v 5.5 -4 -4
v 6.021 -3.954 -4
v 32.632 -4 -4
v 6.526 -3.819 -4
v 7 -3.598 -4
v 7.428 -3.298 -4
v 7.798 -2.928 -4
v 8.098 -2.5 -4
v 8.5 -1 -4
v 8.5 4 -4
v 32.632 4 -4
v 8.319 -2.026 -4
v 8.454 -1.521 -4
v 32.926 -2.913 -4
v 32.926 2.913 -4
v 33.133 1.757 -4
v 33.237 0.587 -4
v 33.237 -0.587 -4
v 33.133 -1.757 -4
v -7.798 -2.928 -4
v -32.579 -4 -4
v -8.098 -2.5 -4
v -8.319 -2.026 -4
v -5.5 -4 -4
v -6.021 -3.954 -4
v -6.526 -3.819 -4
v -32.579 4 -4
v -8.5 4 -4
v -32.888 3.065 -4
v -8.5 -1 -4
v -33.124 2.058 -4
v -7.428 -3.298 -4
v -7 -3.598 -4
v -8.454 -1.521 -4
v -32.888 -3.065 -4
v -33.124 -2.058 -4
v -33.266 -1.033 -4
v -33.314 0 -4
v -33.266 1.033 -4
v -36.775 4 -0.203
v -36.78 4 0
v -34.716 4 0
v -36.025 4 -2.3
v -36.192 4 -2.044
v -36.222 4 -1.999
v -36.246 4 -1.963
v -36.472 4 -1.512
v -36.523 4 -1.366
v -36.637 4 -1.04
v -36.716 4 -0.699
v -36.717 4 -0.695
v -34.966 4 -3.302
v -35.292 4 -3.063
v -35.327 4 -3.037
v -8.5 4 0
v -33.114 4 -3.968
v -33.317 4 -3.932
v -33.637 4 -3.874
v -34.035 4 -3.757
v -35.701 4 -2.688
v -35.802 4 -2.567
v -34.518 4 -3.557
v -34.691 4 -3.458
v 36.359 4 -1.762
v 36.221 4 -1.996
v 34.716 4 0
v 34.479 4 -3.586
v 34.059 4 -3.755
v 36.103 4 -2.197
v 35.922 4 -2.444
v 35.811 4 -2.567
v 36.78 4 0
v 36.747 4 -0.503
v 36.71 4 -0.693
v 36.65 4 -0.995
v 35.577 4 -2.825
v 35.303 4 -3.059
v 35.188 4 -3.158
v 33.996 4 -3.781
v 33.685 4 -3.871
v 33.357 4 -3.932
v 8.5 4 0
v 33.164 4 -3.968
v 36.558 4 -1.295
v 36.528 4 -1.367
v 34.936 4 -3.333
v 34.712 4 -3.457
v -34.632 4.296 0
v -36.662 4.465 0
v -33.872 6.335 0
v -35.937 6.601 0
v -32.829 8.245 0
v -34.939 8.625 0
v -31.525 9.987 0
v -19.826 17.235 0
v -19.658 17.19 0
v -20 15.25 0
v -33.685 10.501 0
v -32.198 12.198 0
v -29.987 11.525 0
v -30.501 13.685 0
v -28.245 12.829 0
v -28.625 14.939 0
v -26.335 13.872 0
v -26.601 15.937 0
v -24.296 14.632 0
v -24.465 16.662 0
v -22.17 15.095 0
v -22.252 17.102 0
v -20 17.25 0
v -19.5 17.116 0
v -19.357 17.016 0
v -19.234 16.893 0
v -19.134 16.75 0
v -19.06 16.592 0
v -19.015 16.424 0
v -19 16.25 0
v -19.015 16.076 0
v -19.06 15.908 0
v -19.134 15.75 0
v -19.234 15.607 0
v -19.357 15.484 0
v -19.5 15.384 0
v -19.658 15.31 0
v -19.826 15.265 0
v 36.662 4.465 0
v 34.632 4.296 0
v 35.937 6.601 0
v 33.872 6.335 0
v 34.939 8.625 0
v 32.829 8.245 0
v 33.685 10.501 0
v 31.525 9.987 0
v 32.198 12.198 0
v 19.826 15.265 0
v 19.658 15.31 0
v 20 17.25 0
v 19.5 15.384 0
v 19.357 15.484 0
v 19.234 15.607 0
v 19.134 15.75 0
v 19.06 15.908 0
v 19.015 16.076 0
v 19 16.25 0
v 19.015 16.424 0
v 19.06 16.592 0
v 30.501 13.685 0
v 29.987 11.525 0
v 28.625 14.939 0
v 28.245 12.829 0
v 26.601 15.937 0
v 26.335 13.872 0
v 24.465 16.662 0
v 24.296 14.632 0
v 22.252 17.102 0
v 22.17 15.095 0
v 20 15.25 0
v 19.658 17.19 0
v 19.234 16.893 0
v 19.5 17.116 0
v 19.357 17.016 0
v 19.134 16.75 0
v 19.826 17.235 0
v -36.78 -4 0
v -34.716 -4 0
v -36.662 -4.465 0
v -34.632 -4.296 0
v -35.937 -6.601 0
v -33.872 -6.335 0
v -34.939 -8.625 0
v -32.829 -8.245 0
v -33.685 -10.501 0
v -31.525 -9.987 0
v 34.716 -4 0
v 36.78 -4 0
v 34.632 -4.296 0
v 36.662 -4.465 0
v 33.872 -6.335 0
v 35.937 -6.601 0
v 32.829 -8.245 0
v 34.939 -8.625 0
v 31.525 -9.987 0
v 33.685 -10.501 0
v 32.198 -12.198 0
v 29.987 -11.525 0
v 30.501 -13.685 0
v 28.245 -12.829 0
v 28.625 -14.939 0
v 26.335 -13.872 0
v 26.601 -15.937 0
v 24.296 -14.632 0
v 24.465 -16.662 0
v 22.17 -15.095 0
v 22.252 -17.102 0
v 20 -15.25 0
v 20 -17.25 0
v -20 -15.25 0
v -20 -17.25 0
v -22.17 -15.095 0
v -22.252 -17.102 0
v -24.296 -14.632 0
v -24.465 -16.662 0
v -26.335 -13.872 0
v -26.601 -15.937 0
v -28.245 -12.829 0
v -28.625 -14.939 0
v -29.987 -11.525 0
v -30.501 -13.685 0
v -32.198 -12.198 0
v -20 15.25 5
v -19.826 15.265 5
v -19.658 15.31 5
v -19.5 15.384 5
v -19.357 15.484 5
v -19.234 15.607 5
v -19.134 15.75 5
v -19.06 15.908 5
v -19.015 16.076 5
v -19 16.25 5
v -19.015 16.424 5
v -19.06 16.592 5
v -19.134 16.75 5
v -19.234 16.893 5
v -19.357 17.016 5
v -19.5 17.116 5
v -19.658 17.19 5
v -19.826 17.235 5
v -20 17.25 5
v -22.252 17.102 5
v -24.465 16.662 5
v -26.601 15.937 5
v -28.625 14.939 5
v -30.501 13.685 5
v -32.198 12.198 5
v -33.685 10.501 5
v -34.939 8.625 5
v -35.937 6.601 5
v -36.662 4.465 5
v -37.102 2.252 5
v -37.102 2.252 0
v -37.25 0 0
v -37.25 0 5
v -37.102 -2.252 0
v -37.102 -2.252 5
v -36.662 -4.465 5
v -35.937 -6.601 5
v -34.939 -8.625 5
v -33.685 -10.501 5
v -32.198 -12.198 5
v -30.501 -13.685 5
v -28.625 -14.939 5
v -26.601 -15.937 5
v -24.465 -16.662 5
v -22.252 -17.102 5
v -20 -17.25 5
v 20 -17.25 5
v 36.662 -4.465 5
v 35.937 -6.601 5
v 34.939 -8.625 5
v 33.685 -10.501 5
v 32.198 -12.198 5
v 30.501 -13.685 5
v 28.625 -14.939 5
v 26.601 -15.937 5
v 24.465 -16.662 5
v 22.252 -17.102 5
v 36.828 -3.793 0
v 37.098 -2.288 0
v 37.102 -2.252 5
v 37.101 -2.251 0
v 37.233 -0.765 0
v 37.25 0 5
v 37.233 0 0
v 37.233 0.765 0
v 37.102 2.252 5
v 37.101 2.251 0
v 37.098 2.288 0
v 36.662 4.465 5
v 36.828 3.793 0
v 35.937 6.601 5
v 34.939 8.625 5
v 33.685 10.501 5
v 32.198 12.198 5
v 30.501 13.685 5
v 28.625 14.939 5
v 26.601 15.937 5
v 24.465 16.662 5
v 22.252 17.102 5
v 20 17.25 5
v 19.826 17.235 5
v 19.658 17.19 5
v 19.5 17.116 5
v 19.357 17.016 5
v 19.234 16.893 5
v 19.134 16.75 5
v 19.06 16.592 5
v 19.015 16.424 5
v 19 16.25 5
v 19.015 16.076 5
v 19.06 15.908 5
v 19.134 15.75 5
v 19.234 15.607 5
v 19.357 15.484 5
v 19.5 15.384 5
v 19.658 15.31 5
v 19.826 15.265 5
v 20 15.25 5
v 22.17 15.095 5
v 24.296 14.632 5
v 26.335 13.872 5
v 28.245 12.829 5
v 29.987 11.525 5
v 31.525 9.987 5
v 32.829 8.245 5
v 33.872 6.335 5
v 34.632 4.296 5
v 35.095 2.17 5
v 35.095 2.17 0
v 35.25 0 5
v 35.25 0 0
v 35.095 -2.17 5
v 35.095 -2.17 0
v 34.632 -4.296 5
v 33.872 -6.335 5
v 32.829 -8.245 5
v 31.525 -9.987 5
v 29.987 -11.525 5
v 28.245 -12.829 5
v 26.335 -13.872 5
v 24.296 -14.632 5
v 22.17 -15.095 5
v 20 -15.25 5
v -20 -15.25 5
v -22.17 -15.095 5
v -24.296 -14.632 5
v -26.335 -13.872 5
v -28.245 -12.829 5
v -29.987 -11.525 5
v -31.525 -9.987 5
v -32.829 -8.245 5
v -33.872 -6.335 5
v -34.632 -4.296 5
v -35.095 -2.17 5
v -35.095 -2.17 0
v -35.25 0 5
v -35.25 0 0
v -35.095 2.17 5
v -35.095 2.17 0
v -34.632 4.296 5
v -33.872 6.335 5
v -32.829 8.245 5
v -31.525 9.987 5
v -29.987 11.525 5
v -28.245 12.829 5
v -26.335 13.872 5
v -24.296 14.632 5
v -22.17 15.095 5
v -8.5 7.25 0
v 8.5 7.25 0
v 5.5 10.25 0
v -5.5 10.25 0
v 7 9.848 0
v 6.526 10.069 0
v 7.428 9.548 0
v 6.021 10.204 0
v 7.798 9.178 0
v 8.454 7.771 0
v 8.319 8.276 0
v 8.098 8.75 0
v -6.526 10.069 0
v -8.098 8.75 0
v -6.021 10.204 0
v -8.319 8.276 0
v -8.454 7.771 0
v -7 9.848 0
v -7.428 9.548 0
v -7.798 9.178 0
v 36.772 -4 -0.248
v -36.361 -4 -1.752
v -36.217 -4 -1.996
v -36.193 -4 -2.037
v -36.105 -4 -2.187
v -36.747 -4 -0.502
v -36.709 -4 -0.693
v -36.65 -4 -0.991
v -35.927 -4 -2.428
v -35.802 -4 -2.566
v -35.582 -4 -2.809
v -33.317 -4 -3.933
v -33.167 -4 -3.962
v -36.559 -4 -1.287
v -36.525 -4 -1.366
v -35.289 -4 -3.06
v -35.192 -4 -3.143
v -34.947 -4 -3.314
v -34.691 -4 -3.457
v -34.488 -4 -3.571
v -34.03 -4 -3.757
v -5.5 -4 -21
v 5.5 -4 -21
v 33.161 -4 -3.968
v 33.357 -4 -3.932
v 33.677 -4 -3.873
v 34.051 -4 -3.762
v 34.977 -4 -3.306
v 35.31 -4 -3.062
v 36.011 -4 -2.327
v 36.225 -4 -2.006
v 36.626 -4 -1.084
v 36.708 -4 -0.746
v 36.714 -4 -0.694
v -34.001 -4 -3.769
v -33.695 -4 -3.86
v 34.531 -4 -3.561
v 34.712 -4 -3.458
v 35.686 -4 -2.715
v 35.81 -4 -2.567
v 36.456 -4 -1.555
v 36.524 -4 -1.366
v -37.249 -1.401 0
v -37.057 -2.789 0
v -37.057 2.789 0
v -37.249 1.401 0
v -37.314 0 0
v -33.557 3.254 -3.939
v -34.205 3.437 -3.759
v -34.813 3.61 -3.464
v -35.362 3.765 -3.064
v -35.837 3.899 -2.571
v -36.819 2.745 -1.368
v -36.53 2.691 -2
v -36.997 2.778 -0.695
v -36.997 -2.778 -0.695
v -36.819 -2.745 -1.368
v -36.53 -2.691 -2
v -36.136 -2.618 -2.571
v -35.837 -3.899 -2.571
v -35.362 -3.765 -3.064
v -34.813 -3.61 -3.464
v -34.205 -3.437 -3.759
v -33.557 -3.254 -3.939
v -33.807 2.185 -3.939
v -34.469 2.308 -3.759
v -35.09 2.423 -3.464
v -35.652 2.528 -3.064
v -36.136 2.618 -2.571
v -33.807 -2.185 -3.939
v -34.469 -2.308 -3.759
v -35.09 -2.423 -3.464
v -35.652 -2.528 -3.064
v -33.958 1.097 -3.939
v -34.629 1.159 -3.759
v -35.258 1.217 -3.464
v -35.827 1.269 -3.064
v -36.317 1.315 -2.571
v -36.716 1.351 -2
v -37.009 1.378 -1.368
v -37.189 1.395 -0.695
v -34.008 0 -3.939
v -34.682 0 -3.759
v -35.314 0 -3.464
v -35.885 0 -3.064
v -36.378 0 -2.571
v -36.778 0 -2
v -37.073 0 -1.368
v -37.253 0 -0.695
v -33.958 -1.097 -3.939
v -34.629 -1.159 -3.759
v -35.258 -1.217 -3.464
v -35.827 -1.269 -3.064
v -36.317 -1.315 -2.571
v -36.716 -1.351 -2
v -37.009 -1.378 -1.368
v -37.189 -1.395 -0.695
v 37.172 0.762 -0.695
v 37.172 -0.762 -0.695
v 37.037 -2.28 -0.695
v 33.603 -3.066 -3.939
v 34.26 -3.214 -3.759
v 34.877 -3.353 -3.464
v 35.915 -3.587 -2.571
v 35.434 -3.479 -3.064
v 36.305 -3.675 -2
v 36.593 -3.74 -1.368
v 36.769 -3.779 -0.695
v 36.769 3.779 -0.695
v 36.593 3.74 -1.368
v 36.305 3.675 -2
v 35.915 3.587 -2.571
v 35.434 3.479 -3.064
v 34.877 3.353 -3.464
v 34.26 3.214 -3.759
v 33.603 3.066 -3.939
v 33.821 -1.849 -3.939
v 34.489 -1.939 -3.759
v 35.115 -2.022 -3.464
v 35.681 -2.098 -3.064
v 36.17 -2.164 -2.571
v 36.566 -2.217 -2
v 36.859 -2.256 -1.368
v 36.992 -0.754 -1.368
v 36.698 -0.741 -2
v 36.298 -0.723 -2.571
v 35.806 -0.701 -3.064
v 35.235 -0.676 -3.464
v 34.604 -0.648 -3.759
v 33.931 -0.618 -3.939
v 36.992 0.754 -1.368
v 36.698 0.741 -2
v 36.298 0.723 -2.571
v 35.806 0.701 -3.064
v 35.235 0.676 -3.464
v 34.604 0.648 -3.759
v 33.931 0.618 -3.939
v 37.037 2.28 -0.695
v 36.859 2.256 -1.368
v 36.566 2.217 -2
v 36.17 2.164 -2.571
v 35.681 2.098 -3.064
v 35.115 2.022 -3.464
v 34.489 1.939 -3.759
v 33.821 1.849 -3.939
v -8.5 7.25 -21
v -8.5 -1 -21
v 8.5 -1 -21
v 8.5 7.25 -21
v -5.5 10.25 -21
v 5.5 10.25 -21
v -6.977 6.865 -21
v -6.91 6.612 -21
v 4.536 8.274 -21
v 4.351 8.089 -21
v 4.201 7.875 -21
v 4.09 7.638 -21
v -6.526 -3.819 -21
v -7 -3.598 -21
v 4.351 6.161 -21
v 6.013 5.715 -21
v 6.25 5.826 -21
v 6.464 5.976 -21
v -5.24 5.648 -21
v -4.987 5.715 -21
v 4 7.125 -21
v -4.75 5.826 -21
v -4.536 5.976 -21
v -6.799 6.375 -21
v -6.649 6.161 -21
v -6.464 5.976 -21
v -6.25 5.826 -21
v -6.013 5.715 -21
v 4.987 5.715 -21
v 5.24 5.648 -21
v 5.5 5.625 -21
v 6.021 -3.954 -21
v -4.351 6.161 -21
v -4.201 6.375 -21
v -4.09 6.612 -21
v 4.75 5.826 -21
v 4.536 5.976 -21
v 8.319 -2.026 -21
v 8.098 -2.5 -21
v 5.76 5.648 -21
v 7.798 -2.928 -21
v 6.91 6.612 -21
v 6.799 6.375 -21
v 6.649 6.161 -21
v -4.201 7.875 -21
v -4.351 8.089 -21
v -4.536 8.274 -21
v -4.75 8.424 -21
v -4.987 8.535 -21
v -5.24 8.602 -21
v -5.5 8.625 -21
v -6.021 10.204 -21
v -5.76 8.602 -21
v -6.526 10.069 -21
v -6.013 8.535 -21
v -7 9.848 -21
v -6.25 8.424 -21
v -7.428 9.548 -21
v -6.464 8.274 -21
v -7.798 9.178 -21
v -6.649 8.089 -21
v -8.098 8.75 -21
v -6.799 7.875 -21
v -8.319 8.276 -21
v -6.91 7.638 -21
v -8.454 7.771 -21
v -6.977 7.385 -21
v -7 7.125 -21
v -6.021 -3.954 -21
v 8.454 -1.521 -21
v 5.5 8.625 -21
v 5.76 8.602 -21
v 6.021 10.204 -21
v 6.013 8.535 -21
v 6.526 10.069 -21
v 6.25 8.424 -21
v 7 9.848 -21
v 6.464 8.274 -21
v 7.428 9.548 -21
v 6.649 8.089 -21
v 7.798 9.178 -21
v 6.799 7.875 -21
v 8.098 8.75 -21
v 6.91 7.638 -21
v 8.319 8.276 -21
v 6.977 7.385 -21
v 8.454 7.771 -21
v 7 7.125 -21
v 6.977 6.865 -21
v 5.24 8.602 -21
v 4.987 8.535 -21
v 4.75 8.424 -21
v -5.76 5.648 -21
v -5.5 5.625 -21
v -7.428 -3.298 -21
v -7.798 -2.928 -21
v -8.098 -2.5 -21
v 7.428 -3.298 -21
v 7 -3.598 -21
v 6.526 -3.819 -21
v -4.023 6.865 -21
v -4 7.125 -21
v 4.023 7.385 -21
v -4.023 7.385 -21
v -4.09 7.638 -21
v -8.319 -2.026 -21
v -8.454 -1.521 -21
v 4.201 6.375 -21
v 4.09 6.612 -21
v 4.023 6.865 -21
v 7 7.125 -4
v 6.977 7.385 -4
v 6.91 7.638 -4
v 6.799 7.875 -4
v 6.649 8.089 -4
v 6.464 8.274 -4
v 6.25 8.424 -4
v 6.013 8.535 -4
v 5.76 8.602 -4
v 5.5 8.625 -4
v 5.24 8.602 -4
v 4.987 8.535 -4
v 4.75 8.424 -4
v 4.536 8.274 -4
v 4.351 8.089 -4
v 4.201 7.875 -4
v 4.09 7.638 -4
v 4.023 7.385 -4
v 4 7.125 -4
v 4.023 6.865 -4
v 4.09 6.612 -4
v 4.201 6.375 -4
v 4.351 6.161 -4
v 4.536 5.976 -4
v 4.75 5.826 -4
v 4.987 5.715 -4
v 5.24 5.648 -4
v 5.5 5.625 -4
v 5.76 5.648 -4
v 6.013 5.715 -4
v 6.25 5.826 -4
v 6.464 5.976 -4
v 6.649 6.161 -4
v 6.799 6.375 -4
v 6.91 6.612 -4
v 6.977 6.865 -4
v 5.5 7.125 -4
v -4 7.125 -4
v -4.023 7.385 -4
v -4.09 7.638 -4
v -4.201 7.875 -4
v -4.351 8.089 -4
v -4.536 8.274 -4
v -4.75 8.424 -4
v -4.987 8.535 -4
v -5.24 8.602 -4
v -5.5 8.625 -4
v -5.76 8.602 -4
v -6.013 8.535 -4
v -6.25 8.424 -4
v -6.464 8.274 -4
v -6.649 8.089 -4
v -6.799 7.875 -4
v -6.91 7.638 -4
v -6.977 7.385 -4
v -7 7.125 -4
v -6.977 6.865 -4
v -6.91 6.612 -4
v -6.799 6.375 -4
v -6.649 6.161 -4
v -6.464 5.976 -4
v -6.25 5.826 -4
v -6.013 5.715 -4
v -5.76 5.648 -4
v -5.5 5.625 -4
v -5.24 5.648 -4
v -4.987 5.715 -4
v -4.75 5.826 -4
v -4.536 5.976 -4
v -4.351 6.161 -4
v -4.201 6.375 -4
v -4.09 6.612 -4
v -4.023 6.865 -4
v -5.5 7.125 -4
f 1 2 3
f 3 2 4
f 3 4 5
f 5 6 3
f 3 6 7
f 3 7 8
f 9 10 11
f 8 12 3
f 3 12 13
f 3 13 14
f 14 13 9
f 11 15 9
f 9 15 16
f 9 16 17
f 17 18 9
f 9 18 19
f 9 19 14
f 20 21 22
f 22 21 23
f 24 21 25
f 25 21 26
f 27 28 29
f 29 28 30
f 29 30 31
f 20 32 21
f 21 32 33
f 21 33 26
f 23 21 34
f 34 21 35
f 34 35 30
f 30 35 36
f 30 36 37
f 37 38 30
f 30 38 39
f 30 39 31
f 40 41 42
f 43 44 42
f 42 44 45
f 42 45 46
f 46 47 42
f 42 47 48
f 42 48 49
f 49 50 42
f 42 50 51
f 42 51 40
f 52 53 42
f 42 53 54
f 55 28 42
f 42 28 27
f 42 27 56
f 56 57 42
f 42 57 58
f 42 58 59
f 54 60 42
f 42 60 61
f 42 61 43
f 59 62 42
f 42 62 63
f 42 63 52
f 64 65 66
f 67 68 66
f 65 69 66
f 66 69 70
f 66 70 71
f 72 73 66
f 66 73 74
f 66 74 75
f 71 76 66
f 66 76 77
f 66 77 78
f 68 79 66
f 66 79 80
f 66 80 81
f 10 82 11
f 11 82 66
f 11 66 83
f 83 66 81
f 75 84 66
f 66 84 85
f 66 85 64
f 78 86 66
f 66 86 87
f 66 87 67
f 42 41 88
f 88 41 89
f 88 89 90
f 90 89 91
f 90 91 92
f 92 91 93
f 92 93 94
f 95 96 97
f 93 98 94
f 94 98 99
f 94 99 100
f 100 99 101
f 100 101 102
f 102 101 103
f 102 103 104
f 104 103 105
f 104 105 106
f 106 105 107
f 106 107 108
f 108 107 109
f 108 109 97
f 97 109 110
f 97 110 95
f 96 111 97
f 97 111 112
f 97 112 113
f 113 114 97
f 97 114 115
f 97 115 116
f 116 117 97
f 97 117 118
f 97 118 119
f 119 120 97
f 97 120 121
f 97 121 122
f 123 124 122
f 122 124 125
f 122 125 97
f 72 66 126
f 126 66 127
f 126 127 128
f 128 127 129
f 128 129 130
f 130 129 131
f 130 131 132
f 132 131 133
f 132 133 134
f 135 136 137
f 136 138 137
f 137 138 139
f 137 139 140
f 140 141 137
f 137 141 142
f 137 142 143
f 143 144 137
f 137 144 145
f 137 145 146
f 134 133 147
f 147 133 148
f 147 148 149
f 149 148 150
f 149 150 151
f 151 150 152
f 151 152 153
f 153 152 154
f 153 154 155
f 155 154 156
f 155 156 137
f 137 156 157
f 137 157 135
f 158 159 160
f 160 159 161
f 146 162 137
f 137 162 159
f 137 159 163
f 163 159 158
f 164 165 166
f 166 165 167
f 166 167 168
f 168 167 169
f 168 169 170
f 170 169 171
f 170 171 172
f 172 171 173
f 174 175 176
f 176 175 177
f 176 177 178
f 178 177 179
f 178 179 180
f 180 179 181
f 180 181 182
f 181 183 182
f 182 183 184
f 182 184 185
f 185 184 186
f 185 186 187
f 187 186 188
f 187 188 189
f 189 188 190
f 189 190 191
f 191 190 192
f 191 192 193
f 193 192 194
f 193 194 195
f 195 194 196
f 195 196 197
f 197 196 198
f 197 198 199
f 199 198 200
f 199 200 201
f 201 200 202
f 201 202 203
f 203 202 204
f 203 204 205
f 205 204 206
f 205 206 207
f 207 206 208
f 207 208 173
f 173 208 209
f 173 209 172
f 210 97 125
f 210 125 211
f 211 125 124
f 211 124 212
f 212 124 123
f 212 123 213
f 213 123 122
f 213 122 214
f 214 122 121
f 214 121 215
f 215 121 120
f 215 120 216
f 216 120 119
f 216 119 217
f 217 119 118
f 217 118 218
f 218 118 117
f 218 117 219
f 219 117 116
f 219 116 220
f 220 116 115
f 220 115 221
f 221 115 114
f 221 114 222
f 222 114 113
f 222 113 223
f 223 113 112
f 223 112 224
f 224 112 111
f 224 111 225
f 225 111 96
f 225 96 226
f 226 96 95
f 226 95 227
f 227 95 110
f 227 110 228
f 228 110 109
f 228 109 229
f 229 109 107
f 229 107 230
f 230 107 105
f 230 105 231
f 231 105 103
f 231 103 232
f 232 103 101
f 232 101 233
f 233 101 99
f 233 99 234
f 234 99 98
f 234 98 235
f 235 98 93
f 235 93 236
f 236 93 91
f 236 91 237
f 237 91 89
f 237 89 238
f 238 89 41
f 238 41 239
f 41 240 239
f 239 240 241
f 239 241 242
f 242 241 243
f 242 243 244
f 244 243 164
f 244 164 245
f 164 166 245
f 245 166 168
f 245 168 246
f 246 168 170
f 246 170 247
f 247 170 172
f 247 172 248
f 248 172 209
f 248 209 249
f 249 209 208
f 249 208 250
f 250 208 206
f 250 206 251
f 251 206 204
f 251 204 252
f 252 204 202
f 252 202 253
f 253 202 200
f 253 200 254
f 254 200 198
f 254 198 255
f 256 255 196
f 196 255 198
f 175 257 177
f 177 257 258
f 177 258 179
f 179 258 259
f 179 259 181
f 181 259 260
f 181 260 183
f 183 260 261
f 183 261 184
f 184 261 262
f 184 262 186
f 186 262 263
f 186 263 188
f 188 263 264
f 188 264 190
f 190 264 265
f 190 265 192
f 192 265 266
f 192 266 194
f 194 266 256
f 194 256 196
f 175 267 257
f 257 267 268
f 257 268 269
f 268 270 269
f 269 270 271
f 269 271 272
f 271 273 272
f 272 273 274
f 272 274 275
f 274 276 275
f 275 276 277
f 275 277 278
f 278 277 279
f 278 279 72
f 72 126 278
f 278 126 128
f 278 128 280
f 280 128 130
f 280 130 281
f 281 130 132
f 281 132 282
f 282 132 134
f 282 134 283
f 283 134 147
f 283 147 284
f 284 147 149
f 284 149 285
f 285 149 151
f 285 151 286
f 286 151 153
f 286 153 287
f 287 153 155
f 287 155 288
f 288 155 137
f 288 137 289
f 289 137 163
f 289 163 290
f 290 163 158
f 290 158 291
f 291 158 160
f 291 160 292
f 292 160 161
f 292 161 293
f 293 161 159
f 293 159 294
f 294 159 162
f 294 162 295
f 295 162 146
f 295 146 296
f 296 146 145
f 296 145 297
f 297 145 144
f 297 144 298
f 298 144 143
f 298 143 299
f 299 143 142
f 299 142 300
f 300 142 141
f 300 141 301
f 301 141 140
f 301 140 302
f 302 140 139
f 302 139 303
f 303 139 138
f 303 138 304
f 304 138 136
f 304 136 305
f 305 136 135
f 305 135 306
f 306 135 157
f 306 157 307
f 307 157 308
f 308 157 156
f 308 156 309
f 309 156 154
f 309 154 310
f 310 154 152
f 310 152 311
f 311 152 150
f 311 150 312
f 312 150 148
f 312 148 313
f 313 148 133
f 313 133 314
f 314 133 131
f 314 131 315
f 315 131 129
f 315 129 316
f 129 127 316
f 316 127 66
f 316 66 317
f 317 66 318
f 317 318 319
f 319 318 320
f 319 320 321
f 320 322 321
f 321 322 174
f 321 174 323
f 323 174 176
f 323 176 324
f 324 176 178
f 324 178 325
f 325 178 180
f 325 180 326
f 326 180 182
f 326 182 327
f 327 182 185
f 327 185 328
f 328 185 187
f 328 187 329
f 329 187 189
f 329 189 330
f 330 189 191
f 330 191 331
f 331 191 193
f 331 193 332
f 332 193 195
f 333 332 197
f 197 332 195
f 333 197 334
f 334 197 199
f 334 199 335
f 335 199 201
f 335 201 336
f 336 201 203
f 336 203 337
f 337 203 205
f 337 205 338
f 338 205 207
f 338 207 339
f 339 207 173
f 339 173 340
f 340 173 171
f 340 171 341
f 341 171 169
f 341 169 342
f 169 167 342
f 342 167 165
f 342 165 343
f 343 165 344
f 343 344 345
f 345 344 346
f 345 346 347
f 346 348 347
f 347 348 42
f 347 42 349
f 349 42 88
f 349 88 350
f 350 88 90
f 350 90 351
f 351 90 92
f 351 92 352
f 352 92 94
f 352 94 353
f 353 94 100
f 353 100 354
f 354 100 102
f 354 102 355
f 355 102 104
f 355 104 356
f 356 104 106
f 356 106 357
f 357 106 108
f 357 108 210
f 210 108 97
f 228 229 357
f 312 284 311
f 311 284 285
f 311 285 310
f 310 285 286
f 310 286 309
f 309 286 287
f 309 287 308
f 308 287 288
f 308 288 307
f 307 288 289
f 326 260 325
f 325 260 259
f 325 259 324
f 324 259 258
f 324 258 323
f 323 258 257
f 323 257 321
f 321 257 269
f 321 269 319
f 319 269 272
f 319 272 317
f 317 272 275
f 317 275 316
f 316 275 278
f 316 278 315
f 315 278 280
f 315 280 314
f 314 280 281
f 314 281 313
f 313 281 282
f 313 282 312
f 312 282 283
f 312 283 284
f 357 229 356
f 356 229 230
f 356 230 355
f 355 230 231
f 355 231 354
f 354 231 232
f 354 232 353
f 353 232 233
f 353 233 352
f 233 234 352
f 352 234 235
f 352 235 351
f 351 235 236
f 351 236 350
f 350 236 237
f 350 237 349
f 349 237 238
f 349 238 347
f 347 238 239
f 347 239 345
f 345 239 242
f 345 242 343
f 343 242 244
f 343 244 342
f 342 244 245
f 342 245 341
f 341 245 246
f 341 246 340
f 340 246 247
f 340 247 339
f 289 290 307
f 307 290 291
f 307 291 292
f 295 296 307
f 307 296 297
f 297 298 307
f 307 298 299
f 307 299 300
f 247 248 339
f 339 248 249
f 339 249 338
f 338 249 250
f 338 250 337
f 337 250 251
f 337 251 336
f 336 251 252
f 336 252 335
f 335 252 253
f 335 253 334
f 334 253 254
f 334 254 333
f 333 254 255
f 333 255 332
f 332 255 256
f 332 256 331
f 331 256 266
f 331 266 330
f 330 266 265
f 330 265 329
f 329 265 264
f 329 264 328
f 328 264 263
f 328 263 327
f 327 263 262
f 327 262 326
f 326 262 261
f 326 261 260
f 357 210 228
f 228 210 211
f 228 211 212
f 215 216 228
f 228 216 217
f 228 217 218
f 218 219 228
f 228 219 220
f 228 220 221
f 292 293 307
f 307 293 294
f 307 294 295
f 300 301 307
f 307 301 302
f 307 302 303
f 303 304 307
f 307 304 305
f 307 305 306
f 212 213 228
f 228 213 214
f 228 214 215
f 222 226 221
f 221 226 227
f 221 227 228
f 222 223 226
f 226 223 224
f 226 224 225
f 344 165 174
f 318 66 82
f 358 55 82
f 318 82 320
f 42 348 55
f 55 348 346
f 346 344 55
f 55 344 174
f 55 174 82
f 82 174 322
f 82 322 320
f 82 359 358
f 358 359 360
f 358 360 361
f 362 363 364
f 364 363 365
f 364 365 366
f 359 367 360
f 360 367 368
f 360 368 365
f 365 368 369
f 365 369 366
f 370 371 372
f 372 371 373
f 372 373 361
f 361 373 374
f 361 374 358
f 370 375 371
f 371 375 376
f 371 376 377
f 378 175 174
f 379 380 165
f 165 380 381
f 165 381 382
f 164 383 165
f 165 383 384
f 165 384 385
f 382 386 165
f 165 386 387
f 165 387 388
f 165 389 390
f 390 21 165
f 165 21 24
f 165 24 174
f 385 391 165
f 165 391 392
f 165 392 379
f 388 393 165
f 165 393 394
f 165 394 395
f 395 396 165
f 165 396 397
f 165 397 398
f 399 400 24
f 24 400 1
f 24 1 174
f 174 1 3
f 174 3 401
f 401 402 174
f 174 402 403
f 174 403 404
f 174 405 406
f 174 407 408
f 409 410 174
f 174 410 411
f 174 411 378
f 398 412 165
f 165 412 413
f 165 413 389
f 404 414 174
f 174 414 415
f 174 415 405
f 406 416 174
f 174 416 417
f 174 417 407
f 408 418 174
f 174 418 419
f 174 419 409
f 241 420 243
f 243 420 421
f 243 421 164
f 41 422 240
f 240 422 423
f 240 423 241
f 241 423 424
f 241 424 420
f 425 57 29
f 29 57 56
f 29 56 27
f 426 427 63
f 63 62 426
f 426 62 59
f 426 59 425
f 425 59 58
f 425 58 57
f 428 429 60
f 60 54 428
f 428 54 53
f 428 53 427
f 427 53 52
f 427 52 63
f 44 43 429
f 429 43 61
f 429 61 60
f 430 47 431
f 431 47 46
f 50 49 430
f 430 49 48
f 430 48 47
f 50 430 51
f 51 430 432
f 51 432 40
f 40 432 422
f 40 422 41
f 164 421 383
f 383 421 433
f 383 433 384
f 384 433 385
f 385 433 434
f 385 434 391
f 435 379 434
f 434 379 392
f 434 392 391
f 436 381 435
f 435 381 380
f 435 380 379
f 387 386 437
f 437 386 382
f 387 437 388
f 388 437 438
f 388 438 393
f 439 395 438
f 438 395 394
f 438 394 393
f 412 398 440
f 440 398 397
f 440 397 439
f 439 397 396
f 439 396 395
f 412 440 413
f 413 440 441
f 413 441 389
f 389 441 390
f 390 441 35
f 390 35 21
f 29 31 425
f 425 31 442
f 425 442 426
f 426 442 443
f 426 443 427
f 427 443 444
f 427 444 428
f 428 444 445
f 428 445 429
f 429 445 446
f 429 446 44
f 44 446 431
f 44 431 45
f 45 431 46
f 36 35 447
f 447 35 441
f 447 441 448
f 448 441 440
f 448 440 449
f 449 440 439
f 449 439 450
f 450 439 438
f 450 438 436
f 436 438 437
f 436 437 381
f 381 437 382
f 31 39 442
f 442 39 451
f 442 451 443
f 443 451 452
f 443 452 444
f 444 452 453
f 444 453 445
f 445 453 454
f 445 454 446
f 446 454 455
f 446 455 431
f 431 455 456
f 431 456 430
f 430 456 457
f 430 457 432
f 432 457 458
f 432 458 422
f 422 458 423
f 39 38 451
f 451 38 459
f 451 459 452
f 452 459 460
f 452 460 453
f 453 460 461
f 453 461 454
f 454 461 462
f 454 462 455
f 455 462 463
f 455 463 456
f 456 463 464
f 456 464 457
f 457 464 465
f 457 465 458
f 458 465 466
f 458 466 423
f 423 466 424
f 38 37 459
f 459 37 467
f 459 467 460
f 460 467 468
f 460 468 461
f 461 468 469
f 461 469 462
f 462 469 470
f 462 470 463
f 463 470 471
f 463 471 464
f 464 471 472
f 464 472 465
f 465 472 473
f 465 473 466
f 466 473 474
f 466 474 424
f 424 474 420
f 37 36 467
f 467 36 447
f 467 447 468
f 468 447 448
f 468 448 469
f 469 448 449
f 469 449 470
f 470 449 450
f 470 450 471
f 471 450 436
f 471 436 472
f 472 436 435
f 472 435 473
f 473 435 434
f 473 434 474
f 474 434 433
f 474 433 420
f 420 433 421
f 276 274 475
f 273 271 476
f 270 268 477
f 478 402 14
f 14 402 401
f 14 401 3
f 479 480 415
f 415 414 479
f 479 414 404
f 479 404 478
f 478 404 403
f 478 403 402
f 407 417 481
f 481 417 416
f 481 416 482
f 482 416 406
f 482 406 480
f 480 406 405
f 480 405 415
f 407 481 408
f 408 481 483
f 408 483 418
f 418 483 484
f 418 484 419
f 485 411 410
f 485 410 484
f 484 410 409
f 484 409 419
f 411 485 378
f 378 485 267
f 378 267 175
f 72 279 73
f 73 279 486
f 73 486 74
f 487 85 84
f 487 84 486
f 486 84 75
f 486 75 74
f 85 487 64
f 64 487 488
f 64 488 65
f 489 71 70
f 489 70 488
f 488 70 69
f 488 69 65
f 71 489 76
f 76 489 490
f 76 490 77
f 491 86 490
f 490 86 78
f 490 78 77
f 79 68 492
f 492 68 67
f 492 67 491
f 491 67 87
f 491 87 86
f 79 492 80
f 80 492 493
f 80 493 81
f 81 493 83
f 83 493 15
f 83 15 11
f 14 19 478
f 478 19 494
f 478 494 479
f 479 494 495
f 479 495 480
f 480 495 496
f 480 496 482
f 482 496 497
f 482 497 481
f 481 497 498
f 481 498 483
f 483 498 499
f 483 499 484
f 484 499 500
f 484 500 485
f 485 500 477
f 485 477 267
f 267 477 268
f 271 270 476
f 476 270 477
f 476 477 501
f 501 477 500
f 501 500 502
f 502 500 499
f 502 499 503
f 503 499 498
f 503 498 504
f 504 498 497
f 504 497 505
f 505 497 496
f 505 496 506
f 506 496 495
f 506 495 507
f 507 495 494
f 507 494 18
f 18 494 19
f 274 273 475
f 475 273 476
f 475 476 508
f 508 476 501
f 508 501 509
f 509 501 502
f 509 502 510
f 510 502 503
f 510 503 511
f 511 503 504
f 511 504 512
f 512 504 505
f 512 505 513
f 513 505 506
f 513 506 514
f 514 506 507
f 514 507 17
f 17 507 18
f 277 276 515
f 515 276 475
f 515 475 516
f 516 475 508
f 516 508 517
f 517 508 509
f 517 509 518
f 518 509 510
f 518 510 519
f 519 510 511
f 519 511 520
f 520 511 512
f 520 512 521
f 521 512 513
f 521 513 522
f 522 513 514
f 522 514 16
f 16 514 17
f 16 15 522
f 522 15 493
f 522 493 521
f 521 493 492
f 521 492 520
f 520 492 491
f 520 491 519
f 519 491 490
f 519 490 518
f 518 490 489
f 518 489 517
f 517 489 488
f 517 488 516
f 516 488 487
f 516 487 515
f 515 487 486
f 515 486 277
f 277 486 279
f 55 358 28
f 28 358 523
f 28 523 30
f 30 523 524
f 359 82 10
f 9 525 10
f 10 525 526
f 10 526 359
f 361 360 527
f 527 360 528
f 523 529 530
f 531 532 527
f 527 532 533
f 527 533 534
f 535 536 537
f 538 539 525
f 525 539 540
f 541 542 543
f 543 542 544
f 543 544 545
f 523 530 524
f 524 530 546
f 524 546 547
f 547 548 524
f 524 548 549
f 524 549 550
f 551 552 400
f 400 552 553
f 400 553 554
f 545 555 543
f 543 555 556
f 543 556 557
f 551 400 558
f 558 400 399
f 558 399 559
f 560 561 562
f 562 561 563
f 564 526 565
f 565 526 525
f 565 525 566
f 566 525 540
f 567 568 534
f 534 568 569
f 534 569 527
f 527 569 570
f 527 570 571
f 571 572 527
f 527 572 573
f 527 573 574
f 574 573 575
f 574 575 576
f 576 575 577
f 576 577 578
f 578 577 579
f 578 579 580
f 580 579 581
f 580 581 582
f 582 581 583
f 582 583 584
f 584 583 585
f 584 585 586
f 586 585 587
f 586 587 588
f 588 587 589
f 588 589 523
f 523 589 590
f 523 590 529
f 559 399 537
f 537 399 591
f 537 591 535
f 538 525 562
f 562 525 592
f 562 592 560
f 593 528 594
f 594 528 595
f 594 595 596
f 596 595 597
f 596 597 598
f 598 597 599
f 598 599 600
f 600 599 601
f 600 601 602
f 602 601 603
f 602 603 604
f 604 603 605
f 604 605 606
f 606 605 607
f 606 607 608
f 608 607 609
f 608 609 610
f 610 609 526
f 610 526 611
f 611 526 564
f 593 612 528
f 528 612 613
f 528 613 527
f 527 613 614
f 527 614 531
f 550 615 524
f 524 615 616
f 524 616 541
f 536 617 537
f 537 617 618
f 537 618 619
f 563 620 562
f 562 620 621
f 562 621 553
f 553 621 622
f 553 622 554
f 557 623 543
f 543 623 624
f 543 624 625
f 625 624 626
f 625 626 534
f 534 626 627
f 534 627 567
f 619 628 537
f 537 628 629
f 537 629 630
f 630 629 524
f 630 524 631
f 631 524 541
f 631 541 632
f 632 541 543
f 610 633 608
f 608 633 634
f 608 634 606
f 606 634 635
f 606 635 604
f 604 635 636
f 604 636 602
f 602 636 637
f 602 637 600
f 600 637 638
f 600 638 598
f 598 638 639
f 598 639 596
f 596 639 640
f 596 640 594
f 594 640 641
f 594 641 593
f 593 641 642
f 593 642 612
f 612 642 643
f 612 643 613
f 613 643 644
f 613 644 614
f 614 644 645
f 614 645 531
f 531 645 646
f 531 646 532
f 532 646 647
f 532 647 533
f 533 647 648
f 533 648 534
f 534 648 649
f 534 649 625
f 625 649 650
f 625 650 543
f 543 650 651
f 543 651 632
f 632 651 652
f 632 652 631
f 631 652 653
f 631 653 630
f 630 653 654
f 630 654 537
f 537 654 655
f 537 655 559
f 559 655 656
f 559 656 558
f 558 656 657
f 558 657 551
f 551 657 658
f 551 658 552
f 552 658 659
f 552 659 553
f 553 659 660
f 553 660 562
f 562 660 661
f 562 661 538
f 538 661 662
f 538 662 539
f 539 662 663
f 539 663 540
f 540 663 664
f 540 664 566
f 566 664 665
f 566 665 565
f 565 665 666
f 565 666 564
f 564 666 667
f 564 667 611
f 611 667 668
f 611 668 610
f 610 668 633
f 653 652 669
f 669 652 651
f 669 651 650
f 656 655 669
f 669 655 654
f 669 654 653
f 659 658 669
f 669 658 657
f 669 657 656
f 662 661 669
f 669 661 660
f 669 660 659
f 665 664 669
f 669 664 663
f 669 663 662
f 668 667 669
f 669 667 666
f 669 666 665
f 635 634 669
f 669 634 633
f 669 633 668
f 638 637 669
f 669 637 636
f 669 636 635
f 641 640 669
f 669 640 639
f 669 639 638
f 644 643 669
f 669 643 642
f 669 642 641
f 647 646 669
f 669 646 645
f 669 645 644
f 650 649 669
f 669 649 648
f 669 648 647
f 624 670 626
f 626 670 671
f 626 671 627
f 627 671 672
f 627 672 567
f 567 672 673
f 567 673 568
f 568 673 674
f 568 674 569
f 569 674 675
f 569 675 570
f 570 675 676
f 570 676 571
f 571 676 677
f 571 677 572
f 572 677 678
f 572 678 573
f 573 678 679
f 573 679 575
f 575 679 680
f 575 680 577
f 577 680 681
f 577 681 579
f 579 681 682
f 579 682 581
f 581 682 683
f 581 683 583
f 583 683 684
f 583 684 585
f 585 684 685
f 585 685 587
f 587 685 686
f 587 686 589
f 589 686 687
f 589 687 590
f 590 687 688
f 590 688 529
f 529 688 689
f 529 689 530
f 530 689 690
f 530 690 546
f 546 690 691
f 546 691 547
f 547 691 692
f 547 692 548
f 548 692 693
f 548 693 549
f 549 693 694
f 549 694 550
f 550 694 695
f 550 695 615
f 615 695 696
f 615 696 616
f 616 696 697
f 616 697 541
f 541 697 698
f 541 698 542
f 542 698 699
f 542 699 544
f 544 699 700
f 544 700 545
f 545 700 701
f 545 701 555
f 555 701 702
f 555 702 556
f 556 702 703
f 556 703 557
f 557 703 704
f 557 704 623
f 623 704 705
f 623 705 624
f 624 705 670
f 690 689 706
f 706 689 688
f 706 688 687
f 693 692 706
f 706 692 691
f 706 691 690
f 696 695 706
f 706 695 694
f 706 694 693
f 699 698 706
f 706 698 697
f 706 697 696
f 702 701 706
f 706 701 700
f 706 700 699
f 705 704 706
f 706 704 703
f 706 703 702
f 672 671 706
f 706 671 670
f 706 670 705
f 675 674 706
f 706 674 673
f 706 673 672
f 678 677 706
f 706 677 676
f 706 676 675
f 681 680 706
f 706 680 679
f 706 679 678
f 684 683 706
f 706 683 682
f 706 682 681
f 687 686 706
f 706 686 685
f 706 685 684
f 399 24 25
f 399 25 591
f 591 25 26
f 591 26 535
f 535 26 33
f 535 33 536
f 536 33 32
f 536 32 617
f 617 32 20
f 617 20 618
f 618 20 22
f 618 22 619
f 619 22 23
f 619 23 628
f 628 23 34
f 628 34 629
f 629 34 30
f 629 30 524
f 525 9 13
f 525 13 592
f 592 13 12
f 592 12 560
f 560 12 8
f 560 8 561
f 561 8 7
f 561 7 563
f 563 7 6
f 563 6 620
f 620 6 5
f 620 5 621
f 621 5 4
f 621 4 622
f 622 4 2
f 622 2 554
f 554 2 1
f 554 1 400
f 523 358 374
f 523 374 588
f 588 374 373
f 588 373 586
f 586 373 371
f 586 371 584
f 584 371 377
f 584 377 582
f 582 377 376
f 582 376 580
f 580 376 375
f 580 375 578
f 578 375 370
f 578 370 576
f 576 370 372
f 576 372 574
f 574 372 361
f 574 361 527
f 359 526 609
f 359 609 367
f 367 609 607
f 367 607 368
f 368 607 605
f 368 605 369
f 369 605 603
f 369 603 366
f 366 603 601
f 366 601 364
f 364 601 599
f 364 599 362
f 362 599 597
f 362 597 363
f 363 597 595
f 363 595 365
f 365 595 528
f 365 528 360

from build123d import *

# Parameters (mm, degrees)
BOSS_EXTRUDE1_DEPTH = 5
BOSS_EXTRUDE2_START = 4
BOSS_EXTRUDE2_DEPTH = 4
FILLET1_R           = 4
SKETCH5_W           = 17
SKETCH5_H           = 4
BOSS_EXTRUDE3_DEPTH = 6.25
SKETCH8_W           = 17
SKETCH8_H           = 14.25
BOSS_EXTRUDE4_DEPTH = 17
SKETCH6_R           = 1.5
CUT_EXTRUDE1_DEPTH  = 45.484596337
FILLET3_R           = 3


with BuildPart() as part:
    # Sketch3 → Boss-Extrude1 (new body)
    with BuildSketch(Plane.XY):
        with BuildLine():
            Line((-20, -17.25), (20, -17.25))
            ThreePointArc((20, -17.25), (37.25, 0), (20, 17.25))
            ThreePointArc((20, 17.25), (19, 16.25), (20, 15.25))
            ThreePointArc((20, 15.25), (35.25, 0), (20, -15.25))
            Line((20, -15.25), (-20, -15.25))
            ThreePointArc((-20, -15.25), (-35.25, 0), (-20, 15.25))
            ThreePointArc((-20, 15.25), (-19, 16.25), (-20, 17.25))
            ThreePointArc((-20, 17.25), (-37.25, 0), (-20, -17.25))
        make_face()
    extrude(amount=BOSS_EXTRUDE1_DEPTH)

    # Sketch4 → Boss-Extrude2 (add)
    with BuildSketch(Plane(origin=(0, 0, 0), x_dir=(-1, 0, 0), z_dir=(0, 0, -1)).offset(BOSS_EXTRUDE2_START)):
        with BuildLine():
            Line((-36.779824195, 4), (36.779824195, 4))
            ThreePointArc((36.779824195, 4), (37.313761542, 0), (36.779824195, -4))
            Line((36.779824195, -4), (-36.779824195, -4))
            ThreePointArc((-36.779824195, -4), (-37.25, 0), (-36.779824195, 4))
        make_face()
    extrude(amount=-BOSS_EXTRUDE2_DEPTH)

    # Fillet1
    fillet1_edges = [part.edges().sort_by_distance(p)[0] for p in [
        (-37.313761542, 0, -4),
        (37.25, 0, -4),
    ]]
    fillet(fillet1_edges, radius=FILLET1_R - 0.0001)  # a hair under: the kernel refuses the full size

    # Sketch5 → Boss-Extrude3 (add)
    with BuildSketch(Plane(origin=(0, 4, 0), x_dir=(1, 0, 0), z_dir=(0, 1, 0))):
        with Locations((0, 2)):
            Rectangle(SKETCH5_W, SKETCH5_H)
    extrude(amount=BOSS_EXTRUDE3_DEPTH)

    # Sketch8 → Boss-Extrude4 (add)
    with BuildSketch(Plane(origin=(0, 0, -4), x_dir=(-1, 0, 0), z_dir=(0, 0, -1))):
        with Locations((0, 3.125)):
            Rectangle(SKETCH8_W, SKETCH8_H)
    extrude(amount=BOSS_EXTRUDE4_DEPTH)

    # Sketch6 → Cut-Extrude1 (cut, through all)
    with BuildSketch(Plane(origin=(0, 0, -4), x_dir=(-1, 0, 0), z_dir=(0, 0, -1))):
        with Locations((-5.5, 7.125)):
            Circle(SKETCH6_R)
        with Locations((5.5, 7.125)):
            Circle(SKETCH6_R)
    extrude(amount=CUT_EXTRUDE1_DEPTH, mode=Mode.SUBTRACT)

    # Fillet3
    fillet3_edges = [part.edges().sort_by_distance(p)[0] for p in [
        (-8.5, 10.25, -10.5),
        (8.5, 10.25, -10.5),
        (8.5, -4, -12.5),
        (-8.5, -4, -12.5),
    ]]
    fillet(fillet3_edges, radius=FILLET3_R)


solid = part.part
